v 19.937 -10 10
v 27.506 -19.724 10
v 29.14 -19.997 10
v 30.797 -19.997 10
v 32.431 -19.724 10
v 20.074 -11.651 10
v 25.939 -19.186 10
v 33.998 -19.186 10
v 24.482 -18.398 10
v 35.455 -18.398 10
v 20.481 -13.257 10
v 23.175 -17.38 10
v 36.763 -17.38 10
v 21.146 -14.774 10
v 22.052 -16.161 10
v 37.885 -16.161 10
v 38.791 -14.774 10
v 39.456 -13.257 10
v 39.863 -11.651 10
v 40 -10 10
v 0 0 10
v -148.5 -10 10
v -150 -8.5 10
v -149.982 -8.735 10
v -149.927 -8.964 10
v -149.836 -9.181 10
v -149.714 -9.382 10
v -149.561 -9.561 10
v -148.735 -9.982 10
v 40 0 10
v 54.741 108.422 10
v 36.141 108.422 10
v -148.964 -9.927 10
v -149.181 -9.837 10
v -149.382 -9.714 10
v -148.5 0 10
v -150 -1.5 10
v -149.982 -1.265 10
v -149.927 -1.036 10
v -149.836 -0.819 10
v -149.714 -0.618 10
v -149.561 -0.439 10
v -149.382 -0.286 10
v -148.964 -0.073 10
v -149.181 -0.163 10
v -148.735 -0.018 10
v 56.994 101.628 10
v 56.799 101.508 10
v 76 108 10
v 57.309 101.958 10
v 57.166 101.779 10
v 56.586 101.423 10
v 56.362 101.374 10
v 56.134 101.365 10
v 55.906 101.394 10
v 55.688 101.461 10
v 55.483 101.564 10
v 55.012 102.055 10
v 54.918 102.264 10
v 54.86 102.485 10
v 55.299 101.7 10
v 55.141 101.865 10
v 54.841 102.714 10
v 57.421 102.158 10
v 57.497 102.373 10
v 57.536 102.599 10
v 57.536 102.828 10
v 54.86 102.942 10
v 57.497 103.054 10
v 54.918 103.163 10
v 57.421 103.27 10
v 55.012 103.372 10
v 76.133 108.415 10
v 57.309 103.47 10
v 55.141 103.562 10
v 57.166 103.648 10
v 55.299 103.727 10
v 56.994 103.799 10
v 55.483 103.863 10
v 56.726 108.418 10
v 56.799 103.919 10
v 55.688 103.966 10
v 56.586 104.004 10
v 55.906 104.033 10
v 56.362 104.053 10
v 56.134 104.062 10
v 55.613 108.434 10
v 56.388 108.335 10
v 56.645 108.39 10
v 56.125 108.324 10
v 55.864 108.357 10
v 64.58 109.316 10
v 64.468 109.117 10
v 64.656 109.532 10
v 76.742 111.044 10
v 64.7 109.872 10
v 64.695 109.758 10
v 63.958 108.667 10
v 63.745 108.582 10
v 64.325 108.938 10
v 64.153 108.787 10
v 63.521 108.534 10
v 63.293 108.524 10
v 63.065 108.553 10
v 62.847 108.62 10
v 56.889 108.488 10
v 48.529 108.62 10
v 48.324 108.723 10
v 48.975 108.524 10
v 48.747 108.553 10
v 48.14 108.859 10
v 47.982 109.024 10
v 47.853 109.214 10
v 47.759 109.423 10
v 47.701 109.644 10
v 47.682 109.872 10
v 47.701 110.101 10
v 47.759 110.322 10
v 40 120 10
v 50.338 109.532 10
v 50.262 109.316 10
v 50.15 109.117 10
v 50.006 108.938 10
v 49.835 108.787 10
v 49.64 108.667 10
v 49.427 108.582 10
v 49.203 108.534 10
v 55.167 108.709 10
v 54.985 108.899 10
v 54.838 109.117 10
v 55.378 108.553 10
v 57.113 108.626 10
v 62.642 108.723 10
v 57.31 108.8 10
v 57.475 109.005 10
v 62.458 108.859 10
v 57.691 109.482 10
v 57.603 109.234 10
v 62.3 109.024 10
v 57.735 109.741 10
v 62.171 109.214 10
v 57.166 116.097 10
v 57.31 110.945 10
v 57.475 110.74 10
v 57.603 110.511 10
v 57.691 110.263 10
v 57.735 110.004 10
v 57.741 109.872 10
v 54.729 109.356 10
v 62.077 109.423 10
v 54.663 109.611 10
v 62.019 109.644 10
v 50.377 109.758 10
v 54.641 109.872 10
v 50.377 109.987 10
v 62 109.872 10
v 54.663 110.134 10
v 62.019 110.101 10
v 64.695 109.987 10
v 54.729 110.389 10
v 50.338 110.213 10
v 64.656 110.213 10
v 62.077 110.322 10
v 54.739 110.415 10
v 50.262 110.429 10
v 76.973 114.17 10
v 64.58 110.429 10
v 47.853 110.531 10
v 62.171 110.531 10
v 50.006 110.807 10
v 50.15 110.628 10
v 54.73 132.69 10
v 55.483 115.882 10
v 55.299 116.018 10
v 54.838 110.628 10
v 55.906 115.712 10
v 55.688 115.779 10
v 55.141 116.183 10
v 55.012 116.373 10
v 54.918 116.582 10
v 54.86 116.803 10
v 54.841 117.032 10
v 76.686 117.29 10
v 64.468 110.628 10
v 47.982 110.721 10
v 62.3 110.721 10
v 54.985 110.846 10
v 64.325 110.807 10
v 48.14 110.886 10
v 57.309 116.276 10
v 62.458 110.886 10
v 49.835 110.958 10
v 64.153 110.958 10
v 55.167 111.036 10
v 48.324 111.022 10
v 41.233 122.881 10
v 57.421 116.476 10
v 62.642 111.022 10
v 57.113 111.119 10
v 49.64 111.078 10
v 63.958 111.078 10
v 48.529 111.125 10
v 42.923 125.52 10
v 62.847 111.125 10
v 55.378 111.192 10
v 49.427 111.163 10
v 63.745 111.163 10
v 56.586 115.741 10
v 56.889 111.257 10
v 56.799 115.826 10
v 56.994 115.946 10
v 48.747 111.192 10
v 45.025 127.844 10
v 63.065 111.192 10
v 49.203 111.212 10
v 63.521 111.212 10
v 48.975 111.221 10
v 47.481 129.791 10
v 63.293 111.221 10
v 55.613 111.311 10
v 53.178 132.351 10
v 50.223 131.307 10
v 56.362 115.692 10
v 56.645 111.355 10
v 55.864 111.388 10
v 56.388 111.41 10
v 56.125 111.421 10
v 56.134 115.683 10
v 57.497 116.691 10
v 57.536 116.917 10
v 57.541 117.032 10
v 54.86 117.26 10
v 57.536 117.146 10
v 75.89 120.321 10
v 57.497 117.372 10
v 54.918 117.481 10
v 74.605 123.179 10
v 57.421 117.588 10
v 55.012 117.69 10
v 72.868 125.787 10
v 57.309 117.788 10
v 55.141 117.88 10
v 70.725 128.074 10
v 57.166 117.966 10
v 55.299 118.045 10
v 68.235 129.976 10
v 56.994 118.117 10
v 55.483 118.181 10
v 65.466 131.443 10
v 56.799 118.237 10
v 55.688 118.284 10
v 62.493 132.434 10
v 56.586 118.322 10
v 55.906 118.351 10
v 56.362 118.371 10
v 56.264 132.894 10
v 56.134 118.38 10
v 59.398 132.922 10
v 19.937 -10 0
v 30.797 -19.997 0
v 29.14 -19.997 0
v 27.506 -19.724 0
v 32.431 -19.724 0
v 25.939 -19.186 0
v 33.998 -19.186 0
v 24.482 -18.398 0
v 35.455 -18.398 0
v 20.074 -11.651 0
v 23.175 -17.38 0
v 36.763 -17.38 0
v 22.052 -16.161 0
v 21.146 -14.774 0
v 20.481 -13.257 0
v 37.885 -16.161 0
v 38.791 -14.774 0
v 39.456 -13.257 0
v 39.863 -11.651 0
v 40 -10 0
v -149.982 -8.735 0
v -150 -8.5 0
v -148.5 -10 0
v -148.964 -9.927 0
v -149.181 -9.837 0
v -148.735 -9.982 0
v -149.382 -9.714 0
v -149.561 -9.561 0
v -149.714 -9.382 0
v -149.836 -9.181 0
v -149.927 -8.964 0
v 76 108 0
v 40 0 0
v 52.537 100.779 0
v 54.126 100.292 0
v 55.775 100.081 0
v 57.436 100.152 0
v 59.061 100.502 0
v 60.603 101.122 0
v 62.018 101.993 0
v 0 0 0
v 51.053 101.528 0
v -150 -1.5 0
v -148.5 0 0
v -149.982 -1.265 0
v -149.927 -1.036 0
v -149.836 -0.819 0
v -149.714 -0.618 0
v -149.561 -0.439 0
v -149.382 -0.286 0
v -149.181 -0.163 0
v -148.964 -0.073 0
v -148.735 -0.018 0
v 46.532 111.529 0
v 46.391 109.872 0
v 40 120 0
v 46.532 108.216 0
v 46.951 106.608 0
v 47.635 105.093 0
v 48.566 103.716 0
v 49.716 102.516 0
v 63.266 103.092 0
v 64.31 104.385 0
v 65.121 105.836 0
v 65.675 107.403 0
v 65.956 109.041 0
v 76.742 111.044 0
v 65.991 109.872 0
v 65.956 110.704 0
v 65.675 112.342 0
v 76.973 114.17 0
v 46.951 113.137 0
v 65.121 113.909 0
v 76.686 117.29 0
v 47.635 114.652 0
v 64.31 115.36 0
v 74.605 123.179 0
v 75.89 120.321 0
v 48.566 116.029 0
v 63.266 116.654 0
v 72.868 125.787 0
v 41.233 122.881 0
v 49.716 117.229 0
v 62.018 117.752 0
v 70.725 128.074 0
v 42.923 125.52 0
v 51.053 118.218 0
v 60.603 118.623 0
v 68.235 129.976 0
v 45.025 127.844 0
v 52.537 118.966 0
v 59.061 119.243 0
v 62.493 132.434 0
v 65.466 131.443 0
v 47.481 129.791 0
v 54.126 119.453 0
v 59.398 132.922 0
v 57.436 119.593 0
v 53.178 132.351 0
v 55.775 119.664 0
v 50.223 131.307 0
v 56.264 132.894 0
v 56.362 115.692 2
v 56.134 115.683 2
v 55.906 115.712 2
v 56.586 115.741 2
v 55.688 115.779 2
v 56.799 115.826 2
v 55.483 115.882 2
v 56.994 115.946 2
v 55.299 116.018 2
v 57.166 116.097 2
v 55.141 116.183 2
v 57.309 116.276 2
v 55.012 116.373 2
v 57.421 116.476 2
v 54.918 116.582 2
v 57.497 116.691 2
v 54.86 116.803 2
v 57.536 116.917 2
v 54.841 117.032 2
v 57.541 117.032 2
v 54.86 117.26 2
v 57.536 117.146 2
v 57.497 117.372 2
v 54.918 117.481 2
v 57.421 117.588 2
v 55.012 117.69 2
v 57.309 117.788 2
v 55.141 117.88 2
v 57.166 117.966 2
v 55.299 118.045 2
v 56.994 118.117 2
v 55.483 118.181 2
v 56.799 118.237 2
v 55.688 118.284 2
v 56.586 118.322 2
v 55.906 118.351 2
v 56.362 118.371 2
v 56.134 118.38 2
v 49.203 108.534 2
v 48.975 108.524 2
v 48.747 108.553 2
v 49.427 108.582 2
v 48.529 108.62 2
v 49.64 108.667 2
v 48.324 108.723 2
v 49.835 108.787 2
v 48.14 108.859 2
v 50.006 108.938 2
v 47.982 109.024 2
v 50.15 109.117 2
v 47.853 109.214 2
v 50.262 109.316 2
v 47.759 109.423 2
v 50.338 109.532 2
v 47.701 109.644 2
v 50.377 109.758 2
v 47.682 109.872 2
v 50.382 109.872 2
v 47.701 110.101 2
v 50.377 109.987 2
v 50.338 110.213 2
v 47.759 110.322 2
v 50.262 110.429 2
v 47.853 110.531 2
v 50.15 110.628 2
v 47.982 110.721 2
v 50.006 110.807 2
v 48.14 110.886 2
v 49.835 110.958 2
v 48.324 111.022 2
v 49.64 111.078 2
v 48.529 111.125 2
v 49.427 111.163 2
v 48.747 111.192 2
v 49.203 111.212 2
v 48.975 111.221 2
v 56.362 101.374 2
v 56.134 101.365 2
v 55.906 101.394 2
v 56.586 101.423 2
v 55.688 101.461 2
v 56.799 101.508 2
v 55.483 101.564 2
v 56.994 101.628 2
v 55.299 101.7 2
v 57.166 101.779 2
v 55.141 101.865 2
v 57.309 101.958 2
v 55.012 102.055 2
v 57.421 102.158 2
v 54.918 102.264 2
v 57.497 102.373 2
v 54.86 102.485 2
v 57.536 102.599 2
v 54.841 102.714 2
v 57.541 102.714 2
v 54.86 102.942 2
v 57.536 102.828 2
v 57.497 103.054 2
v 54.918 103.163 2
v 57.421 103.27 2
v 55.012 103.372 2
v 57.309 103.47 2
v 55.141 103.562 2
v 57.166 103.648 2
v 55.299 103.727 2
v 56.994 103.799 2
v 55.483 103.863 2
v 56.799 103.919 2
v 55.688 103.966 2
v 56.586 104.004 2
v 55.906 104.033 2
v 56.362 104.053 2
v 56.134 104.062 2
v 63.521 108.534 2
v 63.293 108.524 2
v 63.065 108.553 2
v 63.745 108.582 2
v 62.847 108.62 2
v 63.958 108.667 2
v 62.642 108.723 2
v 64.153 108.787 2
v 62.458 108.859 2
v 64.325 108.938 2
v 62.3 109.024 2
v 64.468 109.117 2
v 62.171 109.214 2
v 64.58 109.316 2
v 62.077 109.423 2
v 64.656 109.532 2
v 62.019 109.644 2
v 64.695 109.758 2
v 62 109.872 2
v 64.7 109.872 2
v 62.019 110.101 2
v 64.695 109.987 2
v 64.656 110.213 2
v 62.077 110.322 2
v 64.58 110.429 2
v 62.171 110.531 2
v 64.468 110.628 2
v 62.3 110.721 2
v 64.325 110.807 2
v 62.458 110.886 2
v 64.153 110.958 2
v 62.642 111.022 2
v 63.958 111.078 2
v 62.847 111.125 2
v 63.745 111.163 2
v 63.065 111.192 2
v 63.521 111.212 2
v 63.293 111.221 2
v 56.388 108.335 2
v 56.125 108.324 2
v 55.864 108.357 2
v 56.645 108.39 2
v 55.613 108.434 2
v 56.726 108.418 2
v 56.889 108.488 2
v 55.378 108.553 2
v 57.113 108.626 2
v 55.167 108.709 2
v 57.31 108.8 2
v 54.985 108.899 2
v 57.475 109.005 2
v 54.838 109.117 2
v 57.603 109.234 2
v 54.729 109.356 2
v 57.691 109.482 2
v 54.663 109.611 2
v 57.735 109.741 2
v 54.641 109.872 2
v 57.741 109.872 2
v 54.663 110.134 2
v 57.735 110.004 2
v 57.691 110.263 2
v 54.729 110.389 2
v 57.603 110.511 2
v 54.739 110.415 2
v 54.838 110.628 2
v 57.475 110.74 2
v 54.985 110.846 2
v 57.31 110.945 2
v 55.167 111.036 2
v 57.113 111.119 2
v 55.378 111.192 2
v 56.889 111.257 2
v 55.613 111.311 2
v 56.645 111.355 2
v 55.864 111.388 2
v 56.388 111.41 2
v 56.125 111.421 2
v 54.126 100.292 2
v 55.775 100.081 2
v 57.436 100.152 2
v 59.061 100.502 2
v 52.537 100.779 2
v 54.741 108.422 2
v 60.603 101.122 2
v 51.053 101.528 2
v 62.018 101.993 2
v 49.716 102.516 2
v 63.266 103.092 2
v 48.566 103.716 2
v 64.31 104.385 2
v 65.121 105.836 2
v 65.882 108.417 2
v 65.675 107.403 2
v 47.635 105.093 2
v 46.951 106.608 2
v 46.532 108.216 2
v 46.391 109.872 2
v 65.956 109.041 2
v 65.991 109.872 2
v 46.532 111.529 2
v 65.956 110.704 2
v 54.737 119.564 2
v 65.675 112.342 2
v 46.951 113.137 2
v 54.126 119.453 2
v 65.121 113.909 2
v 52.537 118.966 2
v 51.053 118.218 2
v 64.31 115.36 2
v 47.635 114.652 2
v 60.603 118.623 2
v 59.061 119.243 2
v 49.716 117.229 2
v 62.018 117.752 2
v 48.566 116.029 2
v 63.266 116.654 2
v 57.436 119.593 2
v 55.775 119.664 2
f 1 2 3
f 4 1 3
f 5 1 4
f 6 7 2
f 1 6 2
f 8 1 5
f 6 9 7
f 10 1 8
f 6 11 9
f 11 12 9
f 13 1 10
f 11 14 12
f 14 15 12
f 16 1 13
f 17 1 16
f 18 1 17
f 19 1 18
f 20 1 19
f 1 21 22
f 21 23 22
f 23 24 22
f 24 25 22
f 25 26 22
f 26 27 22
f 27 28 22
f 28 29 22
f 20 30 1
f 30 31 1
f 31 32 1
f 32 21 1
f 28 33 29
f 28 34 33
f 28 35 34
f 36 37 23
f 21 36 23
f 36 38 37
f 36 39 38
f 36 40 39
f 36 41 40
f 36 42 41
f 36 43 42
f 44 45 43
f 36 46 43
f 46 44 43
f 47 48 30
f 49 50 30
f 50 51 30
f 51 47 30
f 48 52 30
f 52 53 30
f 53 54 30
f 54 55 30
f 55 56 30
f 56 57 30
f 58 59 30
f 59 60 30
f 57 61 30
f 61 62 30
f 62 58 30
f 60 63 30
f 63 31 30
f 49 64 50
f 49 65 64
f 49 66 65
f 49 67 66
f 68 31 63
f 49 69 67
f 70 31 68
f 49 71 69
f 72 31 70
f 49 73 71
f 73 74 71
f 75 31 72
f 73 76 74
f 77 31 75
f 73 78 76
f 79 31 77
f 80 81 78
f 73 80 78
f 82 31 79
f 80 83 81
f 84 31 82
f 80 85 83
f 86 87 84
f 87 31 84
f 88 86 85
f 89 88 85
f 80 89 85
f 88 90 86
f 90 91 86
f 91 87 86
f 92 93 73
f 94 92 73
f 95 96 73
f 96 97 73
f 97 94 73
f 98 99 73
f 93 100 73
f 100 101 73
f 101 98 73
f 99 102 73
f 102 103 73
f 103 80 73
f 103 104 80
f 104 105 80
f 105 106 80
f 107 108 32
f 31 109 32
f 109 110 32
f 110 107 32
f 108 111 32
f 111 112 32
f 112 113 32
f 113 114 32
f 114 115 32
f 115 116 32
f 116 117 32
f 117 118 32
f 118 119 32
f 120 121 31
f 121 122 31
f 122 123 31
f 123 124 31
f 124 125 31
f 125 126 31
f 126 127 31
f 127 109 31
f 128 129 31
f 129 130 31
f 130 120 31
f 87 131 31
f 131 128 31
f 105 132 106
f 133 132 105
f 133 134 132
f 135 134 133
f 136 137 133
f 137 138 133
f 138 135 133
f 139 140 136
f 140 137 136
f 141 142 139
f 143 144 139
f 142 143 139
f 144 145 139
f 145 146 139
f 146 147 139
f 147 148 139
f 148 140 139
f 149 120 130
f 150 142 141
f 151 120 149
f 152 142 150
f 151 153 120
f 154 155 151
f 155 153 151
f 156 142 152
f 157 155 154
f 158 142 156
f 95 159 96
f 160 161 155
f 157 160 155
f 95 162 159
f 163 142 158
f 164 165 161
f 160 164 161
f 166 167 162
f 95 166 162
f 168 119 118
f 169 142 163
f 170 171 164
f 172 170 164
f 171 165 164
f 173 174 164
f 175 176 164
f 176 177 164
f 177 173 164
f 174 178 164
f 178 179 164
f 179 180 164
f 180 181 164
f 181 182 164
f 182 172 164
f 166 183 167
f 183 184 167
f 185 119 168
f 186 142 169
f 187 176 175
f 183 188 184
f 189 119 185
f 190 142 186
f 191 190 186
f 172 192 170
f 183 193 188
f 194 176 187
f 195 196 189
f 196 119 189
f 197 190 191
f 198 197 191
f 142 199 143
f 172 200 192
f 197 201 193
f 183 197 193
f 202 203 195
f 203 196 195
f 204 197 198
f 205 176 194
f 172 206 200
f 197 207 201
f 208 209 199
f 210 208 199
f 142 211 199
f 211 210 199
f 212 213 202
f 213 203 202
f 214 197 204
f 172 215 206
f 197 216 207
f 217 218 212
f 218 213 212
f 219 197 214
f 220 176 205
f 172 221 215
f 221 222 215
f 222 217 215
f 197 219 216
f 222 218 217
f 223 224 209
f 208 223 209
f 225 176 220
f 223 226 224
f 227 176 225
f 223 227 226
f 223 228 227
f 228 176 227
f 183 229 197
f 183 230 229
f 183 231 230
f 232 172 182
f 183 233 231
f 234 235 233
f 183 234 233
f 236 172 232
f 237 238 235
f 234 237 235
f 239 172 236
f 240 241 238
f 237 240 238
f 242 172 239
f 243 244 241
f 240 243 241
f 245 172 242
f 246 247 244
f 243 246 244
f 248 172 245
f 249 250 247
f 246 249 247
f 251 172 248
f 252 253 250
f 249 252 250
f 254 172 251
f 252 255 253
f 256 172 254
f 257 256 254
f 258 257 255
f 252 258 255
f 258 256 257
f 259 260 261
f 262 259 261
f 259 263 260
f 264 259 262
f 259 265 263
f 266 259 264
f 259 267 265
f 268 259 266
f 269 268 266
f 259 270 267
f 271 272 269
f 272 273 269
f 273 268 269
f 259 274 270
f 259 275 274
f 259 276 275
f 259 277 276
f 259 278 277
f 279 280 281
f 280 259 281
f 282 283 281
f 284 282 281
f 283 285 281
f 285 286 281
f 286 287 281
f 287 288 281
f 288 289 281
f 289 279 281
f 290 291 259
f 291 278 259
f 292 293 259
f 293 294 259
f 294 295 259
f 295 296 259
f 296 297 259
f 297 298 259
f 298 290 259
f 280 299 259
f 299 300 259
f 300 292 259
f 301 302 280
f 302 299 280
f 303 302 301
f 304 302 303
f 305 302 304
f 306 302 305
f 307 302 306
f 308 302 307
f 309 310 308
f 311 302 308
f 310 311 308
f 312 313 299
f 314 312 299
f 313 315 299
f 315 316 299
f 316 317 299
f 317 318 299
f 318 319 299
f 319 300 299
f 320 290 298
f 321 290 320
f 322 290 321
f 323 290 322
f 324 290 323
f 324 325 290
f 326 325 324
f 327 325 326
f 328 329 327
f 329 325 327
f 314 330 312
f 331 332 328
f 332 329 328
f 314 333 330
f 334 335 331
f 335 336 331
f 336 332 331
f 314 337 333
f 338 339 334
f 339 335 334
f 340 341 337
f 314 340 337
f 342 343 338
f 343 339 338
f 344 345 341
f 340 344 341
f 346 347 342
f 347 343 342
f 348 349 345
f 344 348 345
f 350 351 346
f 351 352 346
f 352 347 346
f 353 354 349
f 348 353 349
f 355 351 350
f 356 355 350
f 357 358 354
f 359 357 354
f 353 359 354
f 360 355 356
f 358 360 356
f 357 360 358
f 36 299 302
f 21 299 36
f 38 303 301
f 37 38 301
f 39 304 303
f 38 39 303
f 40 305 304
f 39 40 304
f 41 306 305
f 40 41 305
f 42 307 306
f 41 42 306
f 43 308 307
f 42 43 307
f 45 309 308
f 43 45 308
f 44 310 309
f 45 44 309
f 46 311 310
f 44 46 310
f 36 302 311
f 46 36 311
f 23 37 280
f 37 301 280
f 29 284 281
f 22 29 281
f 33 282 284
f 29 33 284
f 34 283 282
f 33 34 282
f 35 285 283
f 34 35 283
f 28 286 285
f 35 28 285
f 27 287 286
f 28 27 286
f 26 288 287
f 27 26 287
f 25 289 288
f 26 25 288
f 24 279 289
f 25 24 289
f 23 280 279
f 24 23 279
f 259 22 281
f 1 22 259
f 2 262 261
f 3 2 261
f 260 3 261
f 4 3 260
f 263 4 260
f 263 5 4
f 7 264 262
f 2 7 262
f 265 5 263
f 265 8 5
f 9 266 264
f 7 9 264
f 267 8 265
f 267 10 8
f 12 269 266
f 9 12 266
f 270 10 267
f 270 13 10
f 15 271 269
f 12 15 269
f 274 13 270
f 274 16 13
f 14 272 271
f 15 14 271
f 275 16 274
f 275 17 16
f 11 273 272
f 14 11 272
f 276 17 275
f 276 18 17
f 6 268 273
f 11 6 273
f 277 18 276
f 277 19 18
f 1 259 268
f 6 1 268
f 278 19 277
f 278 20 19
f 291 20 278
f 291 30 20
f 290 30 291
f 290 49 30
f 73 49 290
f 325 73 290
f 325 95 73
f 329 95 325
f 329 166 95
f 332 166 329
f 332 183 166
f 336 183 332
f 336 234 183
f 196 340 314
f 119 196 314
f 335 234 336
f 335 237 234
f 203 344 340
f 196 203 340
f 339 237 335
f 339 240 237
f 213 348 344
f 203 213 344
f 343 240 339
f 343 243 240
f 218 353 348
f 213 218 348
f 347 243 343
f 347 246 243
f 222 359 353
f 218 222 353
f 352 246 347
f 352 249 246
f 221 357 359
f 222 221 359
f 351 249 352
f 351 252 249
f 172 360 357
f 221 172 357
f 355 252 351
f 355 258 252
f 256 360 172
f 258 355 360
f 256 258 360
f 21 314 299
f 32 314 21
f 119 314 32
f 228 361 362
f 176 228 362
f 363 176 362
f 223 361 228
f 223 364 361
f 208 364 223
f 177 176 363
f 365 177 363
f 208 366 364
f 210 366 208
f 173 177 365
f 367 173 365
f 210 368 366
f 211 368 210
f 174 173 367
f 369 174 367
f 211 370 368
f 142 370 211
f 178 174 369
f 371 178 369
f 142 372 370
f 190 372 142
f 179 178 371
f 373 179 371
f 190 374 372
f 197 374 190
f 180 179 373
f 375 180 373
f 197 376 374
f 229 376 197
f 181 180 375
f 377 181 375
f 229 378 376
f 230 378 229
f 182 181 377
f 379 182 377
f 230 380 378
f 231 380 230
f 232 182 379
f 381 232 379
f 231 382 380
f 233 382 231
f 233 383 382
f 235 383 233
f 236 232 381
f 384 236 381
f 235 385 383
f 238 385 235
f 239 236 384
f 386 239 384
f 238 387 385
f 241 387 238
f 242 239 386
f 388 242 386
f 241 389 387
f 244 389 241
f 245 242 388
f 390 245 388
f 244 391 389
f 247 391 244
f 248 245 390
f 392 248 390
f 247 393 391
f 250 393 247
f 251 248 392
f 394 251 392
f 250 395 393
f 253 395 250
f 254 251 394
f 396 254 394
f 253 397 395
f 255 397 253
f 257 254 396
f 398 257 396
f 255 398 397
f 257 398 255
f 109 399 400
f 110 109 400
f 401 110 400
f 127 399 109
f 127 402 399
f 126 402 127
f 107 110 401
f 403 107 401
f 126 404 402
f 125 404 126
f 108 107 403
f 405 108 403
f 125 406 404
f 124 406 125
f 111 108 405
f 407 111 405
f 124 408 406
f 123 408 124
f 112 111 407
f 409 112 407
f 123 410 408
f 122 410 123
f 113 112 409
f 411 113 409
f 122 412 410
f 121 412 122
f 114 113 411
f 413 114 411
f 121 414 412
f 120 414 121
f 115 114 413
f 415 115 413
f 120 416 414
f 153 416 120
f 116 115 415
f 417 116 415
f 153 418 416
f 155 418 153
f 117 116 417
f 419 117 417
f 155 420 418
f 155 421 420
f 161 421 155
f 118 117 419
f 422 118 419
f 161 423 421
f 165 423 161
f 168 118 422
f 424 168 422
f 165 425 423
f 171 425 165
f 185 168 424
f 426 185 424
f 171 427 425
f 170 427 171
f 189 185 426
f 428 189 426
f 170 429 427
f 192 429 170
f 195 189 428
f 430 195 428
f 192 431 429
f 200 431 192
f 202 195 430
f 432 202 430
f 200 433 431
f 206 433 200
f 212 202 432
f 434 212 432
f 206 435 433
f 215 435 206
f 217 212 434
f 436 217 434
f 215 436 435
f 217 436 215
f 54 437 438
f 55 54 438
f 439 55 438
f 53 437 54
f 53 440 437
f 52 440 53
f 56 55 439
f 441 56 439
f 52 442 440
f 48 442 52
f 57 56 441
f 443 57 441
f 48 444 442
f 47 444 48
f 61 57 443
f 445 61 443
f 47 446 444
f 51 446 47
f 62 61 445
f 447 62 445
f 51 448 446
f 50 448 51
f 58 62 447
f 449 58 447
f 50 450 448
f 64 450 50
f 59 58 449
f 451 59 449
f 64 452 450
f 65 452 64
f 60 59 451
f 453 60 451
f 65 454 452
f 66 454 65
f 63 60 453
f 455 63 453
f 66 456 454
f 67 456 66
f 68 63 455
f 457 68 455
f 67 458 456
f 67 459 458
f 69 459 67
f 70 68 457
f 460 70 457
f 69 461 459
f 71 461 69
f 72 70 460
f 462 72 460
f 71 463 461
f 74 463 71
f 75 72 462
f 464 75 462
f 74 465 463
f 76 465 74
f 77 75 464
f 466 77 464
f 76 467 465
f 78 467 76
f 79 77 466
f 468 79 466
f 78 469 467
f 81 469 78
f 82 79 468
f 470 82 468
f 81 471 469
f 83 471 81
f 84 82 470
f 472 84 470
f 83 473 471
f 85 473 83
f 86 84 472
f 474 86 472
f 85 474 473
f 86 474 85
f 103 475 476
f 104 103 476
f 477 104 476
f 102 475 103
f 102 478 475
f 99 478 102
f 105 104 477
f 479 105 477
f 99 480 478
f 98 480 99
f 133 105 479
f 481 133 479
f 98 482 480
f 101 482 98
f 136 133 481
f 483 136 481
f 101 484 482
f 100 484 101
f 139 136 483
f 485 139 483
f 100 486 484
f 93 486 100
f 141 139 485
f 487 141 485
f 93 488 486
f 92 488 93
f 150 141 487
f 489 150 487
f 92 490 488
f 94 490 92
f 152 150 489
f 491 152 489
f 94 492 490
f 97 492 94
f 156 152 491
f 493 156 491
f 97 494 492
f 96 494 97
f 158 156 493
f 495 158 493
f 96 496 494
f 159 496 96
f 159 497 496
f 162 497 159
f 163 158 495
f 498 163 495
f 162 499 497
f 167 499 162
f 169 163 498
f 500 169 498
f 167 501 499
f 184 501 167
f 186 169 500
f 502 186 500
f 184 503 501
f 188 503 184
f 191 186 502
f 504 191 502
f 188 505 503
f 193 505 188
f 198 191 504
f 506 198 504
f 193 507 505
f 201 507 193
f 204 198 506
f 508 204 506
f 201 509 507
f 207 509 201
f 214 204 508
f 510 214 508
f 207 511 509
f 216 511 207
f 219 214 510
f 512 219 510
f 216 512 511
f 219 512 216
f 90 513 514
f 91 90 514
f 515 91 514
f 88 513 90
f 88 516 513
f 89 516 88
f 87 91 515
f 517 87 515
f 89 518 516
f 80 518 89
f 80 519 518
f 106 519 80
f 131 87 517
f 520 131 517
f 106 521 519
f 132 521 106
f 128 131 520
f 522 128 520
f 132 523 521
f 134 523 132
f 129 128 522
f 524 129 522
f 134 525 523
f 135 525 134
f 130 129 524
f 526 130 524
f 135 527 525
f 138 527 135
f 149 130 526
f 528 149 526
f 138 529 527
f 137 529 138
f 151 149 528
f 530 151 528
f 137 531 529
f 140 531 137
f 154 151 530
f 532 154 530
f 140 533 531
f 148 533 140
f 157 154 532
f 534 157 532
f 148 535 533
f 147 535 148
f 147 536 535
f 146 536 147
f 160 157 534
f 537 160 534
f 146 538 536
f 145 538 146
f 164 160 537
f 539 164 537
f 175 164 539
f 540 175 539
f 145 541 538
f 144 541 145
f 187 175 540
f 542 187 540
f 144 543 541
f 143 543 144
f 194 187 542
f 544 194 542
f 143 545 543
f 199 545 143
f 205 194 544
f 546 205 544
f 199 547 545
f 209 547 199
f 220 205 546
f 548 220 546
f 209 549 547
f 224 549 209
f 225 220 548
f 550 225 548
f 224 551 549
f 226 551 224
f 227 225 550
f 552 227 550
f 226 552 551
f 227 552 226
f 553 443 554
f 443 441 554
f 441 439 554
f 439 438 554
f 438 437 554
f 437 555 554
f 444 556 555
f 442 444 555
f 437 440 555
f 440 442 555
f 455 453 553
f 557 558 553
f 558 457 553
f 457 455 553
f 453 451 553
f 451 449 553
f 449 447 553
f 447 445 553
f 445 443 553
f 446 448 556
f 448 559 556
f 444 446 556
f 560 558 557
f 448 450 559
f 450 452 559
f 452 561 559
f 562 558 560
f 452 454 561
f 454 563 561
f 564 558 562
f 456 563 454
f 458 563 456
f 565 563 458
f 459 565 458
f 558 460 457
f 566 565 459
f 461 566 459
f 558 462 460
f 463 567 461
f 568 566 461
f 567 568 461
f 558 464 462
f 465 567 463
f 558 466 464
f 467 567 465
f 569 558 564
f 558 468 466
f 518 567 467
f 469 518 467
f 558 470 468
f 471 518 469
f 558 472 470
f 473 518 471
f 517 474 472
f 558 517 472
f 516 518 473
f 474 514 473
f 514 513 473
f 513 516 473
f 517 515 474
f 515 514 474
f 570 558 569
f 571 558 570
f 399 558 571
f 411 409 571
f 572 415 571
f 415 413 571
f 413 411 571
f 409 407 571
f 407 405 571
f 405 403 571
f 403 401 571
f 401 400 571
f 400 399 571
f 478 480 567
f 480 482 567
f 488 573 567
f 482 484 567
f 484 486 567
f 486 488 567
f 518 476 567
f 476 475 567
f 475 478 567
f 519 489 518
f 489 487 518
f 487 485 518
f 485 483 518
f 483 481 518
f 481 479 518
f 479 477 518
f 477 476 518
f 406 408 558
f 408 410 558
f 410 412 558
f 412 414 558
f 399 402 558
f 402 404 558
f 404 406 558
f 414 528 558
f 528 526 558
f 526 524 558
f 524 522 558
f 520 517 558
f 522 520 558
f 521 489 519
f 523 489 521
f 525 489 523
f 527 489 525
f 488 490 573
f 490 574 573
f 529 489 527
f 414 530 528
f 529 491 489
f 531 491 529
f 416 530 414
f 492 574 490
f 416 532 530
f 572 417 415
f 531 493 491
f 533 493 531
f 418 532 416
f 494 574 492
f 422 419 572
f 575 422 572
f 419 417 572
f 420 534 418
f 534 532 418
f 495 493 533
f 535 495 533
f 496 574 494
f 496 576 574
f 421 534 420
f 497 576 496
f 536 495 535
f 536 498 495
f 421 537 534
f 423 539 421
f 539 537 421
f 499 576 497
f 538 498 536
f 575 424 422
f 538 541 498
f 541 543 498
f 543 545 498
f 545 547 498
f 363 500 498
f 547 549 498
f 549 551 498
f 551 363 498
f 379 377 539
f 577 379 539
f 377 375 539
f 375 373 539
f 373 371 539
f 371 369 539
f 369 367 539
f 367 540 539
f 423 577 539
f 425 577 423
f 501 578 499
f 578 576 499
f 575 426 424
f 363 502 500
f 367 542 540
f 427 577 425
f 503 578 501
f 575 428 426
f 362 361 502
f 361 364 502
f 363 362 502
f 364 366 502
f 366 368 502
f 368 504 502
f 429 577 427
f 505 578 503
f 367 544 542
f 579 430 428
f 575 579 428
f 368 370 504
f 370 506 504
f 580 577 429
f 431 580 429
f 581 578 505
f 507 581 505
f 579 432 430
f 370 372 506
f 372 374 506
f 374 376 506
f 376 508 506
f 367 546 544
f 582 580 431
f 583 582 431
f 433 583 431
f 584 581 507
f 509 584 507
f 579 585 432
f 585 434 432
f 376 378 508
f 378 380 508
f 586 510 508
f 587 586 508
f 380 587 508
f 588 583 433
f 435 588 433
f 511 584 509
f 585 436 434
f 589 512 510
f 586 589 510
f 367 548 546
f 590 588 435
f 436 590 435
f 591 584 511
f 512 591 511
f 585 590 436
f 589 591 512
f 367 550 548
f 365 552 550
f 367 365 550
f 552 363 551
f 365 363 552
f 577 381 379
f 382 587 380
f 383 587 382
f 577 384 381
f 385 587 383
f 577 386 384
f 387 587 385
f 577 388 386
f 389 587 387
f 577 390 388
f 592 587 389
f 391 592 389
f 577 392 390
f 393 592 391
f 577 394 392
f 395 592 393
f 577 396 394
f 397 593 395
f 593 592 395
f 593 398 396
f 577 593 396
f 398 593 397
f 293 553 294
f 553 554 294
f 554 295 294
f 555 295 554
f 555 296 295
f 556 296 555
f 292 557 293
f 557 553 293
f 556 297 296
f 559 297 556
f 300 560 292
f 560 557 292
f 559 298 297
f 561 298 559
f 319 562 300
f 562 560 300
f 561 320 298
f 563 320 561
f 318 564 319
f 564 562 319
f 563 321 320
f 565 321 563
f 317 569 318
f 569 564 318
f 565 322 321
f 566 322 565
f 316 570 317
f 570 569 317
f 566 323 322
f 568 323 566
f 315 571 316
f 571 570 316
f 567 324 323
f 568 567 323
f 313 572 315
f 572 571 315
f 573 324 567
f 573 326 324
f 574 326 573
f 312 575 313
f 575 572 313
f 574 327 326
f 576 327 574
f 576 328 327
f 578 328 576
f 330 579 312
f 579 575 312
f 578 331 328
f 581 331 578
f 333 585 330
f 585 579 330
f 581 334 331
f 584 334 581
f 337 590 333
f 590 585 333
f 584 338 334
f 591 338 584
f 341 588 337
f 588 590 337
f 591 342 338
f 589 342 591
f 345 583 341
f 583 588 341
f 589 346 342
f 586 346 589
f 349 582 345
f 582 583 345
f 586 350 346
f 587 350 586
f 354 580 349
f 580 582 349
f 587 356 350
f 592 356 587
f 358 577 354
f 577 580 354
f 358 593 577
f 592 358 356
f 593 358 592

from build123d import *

# Parameters (mm, degrees)
EXTRUDE_1_DEPTH     = 10
EXTRUDE_2_DEPTH     = 10
SKETCH_1_8_R        = 1.35
CUT_EXTRUDE_1_DEPTH = 10
SKETCH_1_9_R        = 1.55
CUT_EXTRUDE_2_DEPTH = 10
SKETCH_1_10_R       = 9.8
CUT_EXTRUDE_3_DEPTH = 2


with BuildPart() as part:
    # 草图1 → 凸台-拉伸1 (new body)
    with BuildSketch(Plane.XY):
        with BuildLine():
            Line((-150, -1.5), (-150, -8.5))
            ThreePointArc((-150, -8.5), (-149.560660172, -9.560660172), (-148.5, -10))
            Line((-148.5, -10), (19.937196429, -10))
            ThreePointArc((19.937196429, -10), (29.968598214, -20.031401786), (40, -10))
            Line((40, -10), (40, -8.5))
            Line((40, -8.5), (40, 0))
            Line((40, 0), (-148.5, 0))
            ThreePointArc((-148.5, 0), (-149.560660172, -0.439339828), (-150, -1.5))
        make_face()
    extrude(amount=EXTRUDE_1_DEPTH)

    # 草图1<6> → 凸台-拉伸2 (add)
    with BuildSketch(Plane.XY):
        with BuildLine():
            Line((0, 0), (40, 120))
            ThreePointArc((40, 120), (64, 132), (76, 108))
            Line((76, 108), (40, 0))
            Line((40, 0), (0, 0))
        make_face()
    extrude(amount=EXTRUDE_2_DEPTH)

    # 草图1<8> → 切除-拉伸1 (cut)
    with BuildSketch(Plane.XY):
        with Locations((63.349864231, 109.872544891)):
            Circle(SKETCH_1_8_R)
        with Locations((56.190864231, 117.031544891)):
            Circle(SKETCH_1_8_R)
        with Locations((56.190864231, 102.713544891)):
            Circle(SKETCH_1_8_R)
        with Locations((49.031864231, 109.872544891)):
            Circle(SKETCH_1_8_R)
    extrude(amount=CUT_EXTRUDE_1_DEPTH, mode=Mode.SUBTRACT)

    # 草图1<9> → 切除-拉伸2 (cut)
    with BuildSketch(Plane.XY):
        with Locations((56.190864231, 109.872544891)):
            Circle(SKETCH_1_9_R)
    extrude(amount=CUT_EXTRUDE_2_DEPTH, mode=Mode.SUBTRACT)

    # 草图1<10> → 切除-拉伸3 (cut)
    with BuildSketch(Plane.XY):
        with Locations((56.190864231, 109.872544891)):
            Circle(SKETCH_1_10_R)
    extrude(amount=CUT_EXTRUDE_3_DEPTH, mode=Mode.SUBTRACT)


solid = part.part
